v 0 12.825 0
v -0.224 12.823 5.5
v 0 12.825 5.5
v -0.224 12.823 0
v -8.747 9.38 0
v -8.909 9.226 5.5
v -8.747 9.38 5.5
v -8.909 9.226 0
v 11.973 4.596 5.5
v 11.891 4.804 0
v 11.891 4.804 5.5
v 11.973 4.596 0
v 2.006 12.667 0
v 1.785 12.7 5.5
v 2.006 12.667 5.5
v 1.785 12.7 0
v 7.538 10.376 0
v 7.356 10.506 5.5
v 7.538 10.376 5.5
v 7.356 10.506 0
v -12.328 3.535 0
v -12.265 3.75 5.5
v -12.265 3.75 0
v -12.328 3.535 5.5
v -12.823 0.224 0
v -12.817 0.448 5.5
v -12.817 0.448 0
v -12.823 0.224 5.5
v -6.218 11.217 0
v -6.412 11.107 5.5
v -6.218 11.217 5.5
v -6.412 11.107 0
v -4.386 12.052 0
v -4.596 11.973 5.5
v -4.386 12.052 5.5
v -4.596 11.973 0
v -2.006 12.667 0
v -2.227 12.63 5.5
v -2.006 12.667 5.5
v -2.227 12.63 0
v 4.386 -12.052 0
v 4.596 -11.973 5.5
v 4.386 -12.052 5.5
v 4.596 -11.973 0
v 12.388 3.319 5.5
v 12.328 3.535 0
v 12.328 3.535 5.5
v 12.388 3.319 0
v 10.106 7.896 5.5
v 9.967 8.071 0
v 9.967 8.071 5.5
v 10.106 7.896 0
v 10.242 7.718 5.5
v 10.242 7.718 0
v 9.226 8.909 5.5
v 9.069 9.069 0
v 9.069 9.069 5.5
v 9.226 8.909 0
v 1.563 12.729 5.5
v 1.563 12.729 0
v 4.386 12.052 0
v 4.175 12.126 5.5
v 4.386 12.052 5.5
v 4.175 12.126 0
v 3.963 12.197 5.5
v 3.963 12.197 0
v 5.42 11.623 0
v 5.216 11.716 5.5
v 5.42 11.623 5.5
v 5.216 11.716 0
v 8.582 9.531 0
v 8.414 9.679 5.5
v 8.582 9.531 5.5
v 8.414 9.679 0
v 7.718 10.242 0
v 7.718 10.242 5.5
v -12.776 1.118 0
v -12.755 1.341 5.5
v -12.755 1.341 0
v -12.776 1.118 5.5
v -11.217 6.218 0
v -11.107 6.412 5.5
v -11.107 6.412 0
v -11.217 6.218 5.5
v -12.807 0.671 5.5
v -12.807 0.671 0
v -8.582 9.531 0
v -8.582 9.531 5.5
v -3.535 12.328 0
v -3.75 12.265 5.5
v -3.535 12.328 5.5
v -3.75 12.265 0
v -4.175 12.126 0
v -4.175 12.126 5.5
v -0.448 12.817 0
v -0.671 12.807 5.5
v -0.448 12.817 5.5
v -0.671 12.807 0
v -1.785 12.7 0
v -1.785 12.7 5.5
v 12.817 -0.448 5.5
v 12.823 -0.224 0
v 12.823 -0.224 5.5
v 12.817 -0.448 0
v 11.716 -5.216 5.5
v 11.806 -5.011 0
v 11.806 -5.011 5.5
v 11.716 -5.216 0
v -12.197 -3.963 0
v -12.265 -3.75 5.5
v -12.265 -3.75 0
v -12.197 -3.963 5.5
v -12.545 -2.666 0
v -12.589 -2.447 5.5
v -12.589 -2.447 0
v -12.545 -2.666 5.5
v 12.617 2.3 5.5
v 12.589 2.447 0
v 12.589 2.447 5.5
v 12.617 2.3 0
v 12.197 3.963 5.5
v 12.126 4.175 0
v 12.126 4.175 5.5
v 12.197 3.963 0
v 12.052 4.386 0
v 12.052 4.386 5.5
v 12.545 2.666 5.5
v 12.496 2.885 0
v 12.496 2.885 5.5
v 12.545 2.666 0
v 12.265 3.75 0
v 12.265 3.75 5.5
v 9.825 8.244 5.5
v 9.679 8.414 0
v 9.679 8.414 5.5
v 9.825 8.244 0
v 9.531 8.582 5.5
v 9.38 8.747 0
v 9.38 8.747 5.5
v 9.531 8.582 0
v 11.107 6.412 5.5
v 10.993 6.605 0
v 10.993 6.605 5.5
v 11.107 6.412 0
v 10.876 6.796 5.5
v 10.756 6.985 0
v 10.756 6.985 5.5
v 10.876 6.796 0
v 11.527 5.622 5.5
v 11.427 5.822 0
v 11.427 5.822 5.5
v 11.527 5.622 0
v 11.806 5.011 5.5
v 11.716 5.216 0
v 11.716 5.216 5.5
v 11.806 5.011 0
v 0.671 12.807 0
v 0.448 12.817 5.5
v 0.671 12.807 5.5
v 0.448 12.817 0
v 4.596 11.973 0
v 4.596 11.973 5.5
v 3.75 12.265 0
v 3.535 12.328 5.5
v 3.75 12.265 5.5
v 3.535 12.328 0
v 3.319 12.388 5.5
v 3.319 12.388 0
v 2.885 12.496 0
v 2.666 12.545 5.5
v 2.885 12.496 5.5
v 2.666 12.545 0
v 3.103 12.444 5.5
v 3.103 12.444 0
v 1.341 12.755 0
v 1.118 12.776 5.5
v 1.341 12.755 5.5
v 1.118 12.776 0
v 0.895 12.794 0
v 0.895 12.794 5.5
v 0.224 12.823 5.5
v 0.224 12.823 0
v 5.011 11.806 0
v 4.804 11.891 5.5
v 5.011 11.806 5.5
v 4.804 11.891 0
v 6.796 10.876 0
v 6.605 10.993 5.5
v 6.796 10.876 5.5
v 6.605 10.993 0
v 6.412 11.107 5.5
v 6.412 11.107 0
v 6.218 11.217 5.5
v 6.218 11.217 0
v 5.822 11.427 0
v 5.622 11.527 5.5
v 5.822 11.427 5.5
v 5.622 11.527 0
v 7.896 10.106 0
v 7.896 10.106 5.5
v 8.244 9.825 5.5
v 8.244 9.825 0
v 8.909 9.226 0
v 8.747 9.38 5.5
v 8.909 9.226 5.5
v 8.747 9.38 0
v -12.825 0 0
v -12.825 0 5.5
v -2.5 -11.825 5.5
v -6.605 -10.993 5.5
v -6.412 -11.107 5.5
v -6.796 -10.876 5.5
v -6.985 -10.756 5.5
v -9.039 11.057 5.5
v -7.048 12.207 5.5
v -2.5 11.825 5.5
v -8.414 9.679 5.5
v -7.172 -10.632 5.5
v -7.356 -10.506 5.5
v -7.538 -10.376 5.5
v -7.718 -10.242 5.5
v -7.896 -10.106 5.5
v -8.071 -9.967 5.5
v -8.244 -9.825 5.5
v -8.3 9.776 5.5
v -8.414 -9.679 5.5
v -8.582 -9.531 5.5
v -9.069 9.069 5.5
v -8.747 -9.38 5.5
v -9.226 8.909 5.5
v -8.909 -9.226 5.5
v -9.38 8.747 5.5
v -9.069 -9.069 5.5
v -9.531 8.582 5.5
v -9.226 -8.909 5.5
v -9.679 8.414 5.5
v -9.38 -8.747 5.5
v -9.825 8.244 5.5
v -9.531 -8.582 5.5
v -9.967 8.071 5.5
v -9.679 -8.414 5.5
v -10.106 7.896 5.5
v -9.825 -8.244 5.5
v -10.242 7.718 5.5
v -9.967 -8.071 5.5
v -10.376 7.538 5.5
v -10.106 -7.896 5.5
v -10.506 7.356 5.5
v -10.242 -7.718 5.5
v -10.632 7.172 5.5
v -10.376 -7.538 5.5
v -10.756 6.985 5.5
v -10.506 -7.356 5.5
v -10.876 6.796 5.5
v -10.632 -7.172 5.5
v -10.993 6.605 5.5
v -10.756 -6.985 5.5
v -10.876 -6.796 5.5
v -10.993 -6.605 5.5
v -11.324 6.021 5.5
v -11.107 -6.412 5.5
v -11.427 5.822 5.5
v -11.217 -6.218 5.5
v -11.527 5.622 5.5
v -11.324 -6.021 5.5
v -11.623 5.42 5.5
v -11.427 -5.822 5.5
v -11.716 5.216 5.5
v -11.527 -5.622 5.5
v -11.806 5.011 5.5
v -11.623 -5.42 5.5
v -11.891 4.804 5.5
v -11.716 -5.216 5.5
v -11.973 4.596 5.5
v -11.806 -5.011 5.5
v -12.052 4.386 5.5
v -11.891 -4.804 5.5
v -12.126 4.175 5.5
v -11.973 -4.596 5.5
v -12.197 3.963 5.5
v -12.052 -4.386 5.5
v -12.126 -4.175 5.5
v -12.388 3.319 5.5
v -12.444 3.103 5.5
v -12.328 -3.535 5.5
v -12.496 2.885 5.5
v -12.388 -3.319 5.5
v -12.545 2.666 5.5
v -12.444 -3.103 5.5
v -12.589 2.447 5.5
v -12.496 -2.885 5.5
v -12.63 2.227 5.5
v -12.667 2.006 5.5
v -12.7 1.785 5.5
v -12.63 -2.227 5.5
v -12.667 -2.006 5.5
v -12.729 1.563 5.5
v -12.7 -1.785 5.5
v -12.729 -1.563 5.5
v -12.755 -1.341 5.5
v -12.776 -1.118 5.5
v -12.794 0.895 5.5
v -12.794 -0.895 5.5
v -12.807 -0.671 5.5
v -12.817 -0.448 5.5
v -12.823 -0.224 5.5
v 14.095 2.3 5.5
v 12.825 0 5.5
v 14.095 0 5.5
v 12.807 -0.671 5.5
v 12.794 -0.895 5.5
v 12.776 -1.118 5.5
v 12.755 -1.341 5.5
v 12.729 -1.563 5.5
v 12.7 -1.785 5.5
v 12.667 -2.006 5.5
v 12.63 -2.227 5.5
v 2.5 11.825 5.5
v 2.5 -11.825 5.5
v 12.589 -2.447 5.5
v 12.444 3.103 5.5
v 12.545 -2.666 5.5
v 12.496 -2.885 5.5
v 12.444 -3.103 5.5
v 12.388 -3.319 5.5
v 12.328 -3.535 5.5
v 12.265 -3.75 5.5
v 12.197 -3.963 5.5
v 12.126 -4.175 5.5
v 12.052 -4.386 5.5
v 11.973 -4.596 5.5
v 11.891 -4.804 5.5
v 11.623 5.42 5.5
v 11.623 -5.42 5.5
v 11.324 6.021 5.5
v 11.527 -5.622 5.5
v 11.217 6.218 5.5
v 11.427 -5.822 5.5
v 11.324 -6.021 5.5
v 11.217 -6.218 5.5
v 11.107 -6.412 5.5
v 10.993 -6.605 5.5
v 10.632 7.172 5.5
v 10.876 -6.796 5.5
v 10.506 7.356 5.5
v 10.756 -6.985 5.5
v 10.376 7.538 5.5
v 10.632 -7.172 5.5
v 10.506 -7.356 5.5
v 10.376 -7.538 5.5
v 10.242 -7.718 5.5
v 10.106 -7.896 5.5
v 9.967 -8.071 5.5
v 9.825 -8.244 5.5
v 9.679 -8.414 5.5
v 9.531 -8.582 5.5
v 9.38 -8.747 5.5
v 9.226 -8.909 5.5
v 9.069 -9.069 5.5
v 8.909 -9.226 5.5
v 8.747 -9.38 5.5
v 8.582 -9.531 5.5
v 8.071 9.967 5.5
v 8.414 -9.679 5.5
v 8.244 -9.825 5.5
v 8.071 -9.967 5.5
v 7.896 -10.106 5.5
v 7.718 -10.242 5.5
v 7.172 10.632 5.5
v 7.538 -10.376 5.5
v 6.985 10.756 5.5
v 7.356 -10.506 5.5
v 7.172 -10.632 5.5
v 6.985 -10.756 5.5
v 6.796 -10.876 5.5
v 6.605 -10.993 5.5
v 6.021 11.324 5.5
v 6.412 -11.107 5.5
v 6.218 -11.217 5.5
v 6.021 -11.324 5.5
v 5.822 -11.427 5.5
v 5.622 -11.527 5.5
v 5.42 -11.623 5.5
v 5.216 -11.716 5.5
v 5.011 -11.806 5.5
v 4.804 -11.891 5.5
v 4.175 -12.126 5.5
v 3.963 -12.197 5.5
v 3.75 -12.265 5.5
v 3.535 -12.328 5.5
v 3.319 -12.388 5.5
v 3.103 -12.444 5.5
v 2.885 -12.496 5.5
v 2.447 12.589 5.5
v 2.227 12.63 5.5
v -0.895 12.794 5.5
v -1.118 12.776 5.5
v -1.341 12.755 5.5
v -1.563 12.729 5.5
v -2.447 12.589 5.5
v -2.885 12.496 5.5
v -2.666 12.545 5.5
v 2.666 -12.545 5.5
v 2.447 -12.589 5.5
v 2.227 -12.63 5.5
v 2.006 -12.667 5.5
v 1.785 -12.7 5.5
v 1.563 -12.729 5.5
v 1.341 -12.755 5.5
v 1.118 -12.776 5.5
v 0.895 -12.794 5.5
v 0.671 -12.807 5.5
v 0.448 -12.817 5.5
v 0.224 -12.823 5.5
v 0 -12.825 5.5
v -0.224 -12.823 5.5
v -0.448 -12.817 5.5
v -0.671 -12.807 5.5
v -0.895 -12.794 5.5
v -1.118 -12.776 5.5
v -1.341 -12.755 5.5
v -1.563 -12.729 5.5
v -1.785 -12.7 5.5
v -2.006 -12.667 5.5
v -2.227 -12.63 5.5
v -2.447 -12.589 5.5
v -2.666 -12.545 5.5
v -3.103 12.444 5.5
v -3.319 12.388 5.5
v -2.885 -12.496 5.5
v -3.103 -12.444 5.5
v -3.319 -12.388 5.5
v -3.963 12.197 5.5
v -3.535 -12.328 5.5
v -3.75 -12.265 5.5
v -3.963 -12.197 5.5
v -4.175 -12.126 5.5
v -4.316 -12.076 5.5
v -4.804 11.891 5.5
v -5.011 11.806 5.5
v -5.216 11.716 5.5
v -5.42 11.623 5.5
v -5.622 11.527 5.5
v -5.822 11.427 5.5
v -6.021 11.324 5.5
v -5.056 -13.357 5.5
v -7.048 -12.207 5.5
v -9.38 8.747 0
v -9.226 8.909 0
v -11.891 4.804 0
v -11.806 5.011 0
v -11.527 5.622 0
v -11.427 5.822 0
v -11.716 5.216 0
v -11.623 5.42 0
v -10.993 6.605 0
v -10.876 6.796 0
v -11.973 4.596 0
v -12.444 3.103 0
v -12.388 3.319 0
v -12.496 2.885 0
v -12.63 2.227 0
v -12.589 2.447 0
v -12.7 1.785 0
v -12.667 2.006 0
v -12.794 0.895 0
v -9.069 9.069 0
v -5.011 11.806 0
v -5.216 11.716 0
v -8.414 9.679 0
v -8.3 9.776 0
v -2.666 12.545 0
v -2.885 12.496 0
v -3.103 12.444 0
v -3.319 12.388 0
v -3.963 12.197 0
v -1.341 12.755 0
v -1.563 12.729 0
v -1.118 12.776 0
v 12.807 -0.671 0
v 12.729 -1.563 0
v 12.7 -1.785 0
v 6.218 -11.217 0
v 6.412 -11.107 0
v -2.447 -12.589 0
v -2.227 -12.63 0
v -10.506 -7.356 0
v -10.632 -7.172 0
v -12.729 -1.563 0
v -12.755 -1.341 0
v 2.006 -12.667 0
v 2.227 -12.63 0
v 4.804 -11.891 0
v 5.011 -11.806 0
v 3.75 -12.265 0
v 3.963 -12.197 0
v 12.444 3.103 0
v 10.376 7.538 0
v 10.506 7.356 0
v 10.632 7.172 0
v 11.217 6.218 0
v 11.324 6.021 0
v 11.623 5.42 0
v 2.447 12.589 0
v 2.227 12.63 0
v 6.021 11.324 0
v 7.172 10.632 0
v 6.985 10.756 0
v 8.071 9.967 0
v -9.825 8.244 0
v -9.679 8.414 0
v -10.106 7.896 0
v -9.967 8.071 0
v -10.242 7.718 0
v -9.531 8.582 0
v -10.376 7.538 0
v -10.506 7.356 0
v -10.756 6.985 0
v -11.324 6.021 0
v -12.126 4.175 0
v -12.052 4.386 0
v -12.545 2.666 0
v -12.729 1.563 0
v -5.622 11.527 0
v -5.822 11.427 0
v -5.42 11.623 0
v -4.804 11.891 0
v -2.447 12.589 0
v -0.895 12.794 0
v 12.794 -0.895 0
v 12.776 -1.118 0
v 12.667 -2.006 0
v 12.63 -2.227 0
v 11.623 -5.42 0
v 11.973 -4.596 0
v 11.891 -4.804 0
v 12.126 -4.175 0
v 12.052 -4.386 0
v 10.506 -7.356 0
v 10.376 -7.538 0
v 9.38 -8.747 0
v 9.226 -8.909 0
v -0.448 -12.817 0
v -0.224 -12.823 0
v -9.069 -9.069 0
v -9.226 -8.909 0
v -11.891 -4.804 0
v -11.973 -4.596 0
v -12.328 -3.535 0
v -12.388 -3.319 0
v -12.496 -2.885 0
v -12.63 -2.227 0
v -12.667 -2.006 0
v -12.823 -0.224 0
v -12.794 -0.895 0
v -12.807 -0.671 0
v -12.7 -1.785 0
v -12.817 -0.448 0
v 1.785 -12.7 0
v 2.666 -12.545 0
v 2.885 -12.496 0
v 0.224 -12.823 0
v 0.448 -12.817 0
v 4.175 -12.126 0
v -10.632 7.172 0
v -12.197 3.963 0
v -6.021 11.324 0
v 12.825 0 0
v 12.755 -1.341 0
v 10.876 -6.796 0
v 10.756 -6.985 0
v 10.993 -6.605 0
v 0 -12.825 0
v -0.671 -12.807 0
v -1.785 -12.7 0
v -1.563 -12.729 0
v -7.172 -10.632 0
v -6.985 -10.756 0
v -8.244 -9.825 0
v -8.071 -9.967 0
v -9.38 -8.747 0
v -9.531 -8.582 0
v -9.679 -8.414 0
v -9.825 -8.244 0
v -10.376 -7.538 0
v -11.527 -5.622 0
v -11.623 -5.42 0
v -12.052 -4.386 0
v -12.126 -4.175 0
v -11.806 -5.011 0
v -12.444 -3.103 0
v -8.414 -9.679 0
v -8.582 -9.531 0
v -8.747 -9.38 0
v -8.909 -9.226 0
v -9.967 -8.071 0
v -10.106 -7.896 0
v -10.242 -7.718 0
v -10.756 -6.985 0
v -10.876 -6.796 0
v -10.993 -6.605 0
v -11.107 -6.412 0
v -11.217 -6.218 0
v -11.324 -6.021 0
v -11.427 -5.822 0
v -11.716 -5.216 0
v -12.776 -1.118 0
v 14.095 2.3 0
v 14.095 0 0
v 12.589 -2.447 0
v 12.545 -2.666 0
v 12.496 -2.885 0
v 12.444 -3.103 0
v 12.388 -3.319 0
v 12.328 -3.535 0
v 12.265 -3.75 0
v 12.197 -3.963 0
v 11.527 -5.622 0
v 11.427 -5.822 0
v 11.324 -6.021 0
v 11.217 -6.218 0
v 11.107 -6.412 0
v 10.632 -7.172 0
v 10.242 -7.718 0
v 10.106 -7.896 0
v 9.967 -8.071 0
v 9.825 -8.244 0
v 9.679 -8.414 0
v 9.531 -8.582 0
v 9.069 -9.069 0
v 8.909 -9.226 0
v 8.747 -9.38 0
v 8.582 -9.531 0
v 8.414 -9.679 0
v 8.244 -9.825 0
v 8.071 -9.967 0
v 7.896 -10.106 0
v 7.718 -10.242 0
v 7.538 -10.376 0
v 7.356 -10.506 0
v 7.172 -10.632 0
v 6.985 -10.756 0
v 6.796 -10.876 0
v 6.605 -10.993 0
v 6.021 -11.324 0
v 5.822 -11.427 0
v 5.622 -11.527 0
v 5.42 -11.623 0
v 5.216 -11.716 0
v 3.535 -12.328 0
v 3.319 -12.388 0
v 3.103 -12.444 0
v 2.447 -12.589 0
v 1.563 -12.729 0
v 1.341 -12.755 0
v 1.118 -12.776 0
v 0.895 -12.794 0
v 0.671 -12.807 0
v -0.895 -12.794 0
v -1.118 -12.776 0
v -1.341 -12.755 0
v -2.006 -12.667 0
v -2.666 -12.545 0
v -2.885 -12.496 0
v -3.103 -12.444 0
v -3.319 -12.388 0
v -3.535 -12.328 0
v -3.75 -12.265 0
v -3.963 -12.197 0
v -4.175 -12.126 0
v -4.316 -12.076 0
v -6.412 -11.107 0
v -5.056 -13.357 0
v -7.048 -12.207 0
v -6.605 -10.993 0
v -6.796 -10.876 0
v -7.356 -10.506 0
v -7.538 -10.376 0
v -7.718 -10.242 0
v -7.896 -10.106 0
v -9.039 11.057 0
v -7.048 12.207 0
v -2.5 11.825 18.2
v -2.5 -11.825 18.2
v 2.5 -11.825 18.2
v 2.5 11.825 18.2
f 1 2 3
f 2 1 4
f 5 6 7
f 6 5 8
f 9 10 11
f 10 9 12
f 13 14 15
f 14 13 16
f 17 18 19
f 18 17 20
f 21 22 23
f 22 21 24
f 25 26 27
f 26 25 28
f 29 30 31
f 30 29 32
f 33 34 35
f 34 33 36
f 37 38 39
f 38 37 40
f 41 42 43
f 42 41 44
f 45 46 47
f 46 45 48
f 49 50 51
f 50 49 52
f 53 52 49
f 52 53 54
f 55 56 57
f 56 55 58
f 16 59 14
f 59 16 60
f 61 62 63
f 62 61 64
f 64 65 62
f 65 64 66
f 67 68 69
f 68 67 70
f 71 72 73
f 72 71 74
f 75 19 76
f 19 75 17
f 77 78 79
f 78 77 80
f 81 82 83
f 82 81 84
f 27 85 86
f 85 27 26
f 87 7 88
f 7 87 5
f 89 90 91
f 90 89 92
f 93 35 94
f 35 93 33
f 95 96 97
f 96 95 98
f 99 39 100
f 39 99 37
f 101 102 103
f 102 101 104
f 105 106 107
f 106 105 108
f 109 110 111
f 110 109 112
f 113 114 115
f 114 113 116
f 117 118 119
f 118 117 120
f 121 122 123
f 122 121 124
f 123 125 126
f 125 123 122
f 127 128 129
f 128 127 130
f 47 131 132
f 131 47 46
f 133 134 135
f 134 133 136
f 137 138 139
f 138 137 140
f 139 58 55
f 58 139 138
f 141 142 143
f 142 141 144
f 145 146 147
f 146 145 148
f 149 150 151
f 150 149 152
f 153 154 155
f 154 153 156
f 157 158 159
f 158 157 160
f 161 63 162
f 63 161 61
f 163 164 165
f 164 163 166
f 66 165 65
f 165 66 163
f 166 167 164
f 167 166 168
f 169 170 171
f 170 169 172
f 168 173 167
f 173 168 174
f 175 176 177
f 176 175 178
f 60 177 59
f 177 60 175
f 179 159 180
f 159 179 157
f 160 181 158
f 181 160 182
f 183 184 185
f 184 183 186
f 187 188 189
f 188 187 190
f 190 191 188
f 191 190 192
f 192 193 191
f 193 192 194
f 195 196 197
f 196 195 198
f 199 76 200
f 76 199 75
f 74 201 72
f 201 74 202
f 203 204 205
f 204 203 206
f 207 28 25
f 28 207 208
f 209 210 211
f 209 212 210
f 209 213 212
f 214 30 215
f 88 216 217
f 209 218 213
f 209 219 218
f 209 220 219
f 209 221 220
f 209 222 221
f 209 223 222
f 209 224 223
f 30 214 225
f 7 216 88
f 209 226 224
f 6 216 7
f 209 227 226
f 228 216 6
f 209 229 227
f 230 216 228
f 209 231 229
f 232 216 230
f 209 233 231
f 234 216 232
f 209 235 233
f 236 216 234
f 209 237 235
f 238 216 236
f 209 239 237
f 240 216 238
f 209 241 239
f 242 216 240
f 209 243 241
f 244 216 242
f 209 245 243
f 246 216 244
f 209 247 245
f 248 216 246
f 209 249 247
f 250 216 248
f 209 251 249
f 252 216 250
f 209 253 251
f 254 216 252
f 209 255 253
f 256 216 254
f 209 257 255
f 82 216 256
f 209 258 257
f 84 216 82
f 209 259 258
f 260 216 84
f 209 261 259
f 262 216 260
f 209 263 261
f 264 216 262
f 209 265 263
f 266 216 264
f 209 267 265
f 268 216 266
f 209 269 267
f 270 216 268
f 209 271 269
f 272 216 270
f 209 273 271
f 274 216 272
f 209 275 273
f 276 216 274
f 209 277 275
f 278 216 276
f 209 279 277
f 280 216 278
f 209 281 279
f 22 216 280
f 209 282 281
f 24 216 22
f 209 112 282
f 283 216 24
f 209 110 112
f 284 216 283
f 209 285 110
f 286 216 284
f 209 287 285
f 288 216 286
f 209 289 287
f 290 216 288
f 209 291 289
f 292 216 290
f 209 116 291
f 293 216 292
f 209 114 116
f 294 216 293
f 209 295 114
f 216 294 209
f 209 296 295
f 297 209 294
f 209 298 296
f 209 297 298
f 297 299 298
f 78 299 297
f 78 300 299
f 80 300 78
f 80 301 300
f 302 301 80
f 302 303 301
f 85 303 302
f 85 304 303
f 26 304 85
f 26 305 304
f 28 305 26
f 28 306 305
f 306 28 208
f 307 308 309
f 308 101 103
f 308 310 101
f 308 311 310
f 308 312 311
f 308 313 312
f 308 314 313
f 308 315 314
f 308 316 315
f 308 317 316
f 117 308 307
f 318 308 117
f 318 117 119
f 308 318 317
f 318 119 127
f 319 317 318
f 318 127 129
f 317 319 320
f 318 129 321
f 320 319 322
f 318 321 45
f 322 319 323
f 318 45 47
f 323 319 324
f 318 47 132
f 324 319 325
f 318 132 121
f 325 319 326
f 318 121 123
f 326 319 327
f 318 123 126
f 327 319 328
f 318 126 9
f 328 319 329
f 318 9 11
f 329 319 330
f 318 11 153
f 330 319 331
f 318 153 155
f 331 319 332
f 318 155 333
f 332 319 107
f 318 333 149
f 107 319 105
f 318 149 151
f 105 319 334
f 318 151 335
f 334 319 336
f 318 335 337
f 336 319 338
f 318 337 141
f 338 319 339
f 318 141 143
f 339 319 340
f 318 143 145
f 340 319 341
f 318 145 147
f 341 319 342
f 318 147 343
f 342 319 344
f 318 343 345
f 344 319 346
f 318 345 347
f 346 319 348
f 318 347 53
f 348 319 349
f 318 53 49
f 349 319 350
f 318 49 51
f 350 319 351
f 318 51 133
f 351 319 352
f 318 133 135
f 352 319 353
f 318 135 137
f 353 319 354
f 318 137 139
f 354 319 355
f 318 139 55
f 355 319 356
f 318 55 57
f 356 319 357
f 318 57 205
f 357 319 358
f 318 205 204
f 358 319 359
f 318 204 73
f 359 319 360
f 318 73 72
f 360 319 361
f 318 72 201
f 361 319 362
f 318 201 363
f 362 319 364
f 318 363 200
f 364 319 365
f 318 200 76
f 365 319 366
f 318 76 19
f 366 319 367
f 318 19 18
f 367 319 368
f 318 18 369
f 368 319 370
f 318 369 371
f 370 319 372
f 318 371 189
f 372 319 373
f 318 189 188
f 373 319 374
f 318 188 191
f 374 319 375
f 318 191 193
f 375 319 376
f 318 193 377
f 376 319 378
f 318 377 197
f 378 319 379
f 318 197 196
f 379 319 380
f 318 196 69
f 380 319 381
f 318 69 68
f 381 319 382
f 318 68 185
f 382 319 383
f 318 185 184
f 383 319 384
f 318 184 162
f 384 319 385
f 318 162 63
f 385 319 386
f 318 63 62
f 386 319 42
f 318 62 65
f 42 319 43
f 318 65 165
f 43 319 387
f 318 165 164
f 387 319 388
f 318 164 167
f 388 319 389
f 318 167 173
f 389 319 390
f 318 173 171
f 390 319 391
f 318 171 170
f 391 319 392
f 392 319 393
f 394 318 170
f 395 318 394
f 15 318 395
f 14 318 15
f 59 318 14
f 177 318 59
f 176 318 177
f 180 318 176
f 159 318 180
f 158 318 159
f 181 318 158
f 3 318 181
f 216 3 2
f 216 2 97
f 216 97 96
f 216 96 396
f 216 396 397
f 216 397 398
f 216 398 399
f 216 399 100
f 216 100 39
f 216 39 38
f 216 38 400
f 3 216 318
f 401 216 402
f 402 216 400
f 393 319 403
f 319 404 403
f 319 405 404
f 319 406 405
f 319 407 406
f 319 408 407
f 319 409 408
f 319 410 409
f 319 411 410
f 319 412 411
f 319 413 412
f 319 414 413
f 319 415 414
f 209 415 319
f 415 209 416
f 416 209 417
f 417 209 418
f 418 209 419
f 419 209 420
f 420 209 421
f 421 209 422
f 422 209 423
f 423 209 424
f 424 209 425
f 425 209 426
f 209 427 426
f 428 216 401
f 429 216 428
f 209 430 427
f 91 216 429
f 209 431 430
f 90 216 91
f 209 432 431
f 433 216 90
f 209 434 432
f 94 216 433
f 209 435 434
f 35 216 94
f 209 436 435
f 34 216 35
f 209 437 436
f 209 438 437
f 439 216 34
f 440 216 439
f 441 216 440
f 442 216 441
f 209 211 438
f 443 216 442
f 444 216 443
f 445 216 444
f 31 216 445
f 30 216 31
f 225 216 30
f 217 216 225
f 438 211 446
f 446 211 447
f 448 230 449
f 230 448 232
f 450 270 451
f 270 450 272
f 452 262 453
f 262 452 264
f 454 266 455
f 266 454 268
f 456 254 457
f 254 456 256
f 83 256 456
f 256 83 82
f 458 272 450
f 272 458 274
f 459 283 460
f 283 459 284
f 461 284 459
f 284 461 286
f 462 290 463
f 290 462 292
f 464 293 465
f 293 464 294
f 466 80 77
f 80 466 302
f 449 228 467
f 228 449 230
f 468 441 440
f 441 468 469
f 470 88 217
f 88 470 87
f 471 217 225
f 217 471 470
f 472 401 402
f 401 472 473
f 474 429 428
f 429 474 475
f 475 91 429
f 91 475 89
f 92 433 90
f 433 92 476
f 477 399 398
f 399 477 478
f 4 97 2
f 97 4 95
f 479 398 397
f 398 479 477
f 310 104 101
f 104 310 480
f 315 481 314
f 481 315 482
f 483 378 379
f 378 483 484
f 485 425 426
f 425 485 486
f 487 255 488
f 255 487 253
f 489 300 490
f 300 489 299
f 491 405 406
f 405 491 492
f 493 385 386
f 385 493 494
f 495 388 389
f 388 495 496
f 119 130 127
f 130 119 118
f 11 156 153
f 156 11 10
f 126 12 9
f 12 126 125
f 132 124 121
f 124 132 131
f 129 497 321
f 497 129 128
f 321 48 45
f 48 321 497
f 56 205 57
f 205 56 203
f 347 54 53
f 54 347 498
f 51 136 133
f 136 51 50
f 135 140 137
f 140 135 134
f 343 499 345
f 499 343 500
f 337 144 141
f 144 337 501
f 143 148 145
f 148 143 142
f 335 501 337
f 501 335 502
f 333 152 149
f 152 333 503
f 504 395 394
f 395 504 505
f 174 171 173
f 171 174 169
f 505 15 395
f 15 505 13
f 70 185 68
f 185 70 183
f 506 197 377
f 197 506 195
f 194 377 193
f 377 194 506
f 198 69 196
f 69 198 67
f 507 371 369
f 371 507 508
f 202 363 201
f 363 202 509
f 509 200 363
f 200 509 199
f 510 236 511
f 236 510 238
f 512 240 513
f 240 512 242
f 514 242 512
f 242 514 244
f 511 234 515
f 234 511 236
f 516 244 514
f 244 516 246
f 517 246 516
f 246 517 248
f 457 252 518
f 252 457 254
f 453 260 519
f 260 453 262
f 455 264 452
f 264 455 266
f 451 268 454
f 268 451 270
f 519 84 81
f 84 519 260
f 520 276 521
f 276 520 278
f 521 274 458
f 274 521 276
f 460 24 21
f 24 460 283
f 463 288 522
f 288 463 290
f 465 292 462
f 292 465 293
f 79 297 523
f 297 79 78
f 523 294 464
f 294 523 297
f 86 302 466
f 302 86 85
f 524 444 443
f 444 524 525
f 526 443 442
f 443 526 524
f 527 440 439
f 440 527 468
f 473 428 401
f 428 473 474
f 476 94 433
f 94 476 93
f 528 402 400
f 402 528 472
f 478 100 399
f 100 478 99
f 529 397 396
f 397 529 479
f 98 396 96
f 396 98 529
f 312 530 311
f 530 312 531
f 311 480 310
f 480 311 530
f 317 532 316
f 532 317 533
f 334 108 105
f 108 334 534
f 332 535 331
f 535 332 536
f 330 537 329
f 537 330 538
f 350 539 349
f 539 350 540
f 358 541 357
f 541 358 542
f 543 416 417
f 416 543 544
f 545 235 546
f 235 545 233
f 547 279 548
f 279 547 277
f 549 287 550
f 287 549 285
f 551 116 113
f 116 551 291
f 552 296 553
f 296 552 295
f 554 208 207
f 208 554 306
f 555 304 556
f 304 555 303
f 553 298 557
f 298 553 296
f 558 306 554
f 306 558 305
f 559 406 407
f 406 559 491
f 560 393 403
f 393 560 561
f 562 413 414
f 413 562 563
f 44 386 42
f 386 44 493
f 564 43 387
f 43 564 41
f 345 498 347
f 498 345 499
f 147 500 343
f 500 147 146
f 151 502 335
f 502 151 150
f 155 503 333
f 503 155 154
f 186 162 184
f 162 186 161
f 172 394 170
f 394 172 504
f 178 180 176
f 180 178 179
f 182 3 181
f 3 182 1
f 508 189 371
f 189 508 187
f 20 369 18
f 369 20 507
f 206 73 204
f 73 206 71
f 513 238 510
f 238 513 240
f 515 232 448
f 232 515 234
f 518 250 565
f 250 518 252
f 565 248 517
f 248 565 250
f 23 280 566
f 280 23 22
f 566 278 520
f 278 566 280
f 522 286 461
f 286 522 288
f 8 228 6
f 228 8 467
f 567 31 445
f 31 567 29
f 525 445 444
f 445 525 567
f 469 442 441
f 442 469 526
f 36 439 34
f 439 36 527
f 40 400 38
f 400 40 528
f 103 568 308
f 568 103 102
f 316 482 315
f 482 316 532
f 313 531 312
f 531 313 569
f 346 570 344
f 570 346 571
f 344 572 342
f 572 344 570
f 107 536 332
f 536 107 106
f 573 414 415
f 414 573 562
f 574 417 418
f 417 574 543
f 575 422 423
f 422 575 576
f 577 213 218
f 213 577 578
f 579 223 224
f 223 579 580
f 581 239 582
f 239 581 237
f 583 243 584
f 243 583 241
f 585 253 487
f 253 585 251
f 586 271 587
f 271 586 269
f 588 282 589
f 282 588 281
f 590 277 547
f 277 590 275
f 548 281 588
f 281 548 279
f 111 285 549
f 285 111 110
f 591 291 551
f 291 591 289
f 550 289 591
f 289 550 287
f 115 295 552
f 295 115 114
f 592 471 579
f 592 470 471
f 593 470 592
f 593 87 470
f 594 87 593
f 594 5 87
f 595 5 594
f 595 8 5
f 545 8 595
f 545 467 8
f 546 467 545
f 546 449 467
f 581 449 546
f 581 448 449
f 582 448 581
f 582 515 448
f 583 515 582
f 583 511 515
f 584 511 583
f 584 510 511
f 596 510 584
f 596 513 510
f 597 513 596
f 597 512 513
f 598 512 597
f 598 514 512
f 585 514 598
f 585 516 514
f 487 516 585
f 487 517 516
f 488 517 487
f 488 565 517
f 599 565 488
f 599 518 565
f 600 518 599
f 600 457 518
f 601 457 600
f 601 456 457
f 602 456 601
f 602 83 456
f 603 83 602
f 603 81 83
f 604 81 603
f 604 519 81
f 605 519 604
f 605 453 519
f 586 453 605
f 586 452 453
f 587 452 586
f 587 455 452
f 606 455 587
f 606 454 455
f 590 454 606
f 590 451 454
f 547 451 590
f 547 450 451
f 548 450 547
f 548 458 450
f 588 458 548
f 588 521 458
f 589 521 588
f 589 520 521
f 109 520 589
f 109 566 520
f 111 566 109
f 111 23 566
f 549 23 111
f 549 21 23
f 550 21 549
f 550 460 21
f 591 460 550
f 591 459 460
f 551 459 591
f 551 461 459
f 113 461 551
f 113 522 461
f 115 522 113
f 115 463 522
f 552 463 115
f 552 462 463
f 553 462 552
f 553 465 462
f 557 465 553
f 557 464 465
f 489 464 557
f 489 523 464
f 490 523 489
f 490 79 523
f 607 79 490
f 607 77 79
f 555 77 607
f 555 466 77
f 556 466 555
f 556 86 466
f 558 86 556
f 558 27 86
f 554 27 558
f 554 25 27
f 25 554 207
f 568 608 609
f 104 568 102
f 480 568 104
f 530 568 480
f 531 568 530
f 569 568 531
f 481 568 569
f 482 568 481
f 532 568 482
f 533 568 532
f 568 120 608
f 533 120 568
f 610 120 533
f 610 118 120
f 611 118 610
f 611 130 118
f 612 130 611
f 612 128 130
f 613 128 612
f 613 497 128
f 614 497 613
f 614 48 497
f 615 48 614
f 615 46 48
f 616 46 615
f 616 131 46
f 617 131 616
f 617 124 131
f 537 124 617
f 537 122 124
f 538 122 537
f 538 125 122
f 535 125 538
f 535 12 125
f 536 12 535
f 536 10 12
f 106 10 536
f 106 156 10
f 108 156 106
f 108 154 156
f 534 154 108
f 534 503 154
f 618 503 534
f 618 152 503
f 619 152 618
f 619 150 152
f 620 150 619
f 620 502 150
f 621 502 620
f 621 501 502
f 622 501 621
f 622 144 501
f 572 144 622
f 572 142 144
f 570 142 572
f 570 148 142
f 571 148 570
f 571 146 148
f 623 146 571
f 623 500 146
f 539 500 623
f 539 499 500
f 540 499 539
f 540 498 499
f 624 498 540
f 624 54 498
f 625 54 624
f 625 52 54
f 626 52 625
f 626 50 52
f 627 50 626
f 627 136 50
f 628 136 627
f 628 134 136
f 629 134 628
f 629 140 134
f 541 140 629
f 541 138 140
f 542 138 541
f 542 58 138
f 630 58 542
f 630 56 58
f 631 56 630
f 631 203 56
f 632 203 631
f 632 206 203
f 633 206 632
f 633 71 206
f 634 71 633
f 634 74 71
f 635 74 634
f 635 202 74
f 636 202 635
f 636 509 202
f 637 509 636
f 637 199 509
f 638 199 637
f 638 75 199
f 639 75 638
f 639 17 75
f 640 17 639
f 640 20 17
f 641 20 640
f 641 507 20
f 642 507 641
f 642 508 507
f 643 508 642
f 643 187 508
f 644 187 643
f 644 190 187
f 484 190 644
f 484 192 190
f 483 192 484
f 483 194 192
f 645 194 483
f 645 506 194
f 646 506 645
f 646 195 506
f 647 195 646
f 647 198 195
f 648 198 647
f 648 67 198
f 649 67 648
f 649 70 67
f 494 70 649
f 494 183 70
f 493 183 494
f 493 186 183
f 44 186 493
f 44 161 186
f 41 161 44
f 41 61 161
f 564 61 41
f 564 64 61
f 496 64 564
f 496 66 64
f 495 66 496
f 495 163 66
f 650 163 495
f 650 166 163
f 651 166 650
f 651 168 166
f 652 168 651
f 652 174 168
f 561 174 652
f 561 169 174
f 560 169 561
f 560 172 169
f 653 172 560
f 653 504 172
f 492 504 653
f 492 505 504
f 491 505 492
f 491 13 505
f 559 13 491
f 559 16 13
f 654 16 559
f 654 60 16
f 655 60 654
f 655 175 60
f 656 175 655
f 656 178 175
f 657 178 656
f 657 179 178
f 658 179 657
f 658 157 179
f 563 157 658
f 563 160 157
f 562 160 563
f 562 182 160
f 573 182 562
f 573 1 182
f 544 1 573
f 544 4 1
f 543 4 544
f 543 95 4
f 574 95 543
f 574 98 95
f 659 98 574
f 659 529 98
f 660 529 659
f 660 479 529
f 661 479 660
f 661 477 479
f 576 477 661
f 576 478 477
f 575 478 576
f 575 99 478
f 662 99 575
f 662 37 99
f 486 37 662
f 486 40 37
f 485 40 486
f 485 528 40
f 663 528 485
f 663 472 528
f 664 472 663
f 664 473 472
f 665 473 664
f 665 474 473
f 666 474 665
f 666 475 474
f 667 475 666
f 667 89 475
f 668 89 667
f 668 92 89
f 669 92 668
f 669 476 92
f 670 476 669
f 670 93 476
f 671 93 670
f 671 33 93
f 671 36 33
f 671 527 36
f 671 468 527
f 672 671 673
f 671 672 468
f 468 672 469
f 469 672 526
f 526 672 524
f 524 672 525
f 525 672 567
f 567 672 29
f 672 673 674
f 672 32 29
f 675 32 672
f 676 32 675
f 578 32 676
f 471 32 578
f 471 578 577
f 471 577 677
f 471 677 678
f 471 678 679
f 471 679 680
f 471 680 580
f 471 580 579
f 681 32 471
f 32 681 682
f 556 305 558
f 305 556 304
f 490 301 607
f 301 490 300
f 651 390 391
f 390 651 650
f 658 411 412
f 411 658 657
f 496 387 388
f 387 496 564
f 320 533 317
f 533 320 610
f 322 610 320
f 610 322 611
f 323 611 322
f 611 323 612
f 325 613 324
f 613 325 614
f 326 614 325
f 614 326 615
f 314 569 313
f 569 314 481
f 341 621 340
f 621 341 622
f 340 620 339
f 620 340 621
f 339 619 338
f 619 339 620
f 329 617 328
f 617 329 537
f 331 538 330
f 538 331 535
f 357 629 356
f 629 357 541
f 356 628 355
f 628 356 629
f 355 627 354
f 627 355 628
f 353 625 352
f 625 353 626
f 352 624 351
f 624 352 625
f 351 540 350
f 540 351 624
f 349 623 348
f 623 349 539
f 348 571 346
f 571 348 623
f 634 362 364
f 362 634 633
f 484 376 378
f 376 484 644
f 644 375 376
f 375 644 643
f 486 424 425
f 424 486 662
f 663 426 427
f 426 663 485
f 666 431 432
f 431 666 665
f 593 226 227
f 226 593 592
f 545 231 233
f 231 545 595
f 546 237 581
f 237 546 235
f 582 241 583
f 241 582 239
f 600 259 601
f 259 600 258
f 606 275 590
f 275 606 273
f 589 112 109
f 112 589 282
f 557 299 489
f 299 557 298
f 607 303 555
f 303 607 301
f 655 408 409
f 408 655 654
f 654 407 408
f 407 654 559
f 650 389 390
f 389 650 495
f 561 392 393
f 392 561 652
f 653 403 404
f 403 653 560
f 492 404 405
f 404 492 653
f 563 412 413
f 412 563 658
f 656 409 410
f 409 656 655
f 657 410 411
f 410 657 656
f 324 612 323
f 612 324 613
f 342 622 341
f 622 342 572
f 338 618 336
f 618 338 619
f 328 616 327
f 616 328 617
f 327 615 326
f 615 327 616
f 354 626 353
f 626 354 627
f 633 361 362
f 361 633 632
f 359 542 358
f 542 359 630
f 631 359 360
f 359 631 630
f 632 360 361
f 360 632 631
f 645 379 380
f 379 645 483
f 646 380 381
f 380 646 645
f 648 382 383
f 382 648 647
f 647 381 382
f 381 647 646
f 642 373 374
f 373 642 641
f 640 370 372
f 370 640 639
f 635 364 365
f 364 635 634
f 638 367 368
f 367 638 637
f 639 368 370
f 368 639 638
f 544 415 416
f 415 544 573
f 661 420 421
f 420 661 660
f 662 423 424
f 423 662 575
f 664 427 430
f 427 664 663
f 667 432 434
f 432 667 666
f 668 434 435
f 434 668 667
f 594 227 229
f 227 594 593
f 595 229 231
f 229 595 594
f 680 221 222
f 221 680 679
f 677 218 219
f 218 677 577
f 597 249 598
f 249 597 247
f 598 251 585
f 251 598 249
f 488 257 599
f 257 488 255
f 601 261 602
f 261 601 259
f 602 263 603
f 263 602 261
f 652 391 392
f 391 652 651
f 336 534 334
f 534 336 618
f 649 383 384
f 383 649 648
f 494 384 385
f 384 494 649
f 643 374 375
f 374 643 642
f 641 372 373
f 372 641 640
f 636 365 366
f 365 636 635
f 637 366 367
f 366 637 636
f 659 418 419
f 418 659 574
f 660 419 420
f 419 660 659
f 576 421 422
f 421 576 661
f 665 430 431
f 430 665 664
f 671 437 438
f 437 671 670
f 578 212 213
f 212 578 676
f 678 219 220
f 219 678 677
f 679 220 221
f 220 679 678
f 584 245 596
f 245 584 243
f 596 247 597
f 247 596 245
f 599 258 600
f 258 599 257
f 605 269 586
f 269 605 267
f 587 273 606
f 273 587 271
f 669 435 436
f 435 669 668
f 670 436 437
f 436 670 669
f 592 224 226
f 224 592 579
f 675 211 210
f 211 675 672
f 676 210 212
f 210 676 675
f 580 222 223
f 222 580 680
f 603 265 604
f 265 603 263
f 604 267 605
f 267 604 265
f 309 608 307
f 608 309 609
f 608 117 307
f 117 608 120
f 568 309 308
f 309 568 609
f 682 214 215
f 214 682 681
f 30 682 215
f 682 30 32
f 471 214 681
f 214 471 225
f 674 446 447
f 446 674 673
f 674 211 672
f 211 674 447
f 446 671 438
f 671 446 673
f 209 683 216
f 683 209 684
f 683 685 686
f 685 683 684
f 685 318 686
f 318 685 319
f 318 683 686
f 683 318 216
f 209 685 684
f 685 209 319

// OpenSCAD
sides=360;

plug_dia      = 25.65;
plug_height   = 5.50;
ear_length    = 1.27;
ear_width     = 2.30;
handle_height = 25.40 / 2;
handle_width  = 5.00;

module plug () {
  translate ([0, 0, 0]) {
    cylinder (d=plug_dia, h=plug_height, $fn=sides);

    rotate ([0, 0, 0])
      cube ([(plug_dia / 2) + ear_length, ear_width, plug_height]);
    rotate ([0, 0, 120])
      cube ([(plug_dia / 2) + ear_length, ear_width, plug_height]);
    rotate ([0, 0, 240])
      cube ([(plug_dia / 2) + ear_length, ear_width, plug_height]);
  }
}

module handle () {
  translate ([-(handle_width / 2), -((plug_dia - 2) / 2), plug_height])
    cube ([handle_width, (plug_dia - 2), handle_height], center=false);
}

plug ();
handle ();
